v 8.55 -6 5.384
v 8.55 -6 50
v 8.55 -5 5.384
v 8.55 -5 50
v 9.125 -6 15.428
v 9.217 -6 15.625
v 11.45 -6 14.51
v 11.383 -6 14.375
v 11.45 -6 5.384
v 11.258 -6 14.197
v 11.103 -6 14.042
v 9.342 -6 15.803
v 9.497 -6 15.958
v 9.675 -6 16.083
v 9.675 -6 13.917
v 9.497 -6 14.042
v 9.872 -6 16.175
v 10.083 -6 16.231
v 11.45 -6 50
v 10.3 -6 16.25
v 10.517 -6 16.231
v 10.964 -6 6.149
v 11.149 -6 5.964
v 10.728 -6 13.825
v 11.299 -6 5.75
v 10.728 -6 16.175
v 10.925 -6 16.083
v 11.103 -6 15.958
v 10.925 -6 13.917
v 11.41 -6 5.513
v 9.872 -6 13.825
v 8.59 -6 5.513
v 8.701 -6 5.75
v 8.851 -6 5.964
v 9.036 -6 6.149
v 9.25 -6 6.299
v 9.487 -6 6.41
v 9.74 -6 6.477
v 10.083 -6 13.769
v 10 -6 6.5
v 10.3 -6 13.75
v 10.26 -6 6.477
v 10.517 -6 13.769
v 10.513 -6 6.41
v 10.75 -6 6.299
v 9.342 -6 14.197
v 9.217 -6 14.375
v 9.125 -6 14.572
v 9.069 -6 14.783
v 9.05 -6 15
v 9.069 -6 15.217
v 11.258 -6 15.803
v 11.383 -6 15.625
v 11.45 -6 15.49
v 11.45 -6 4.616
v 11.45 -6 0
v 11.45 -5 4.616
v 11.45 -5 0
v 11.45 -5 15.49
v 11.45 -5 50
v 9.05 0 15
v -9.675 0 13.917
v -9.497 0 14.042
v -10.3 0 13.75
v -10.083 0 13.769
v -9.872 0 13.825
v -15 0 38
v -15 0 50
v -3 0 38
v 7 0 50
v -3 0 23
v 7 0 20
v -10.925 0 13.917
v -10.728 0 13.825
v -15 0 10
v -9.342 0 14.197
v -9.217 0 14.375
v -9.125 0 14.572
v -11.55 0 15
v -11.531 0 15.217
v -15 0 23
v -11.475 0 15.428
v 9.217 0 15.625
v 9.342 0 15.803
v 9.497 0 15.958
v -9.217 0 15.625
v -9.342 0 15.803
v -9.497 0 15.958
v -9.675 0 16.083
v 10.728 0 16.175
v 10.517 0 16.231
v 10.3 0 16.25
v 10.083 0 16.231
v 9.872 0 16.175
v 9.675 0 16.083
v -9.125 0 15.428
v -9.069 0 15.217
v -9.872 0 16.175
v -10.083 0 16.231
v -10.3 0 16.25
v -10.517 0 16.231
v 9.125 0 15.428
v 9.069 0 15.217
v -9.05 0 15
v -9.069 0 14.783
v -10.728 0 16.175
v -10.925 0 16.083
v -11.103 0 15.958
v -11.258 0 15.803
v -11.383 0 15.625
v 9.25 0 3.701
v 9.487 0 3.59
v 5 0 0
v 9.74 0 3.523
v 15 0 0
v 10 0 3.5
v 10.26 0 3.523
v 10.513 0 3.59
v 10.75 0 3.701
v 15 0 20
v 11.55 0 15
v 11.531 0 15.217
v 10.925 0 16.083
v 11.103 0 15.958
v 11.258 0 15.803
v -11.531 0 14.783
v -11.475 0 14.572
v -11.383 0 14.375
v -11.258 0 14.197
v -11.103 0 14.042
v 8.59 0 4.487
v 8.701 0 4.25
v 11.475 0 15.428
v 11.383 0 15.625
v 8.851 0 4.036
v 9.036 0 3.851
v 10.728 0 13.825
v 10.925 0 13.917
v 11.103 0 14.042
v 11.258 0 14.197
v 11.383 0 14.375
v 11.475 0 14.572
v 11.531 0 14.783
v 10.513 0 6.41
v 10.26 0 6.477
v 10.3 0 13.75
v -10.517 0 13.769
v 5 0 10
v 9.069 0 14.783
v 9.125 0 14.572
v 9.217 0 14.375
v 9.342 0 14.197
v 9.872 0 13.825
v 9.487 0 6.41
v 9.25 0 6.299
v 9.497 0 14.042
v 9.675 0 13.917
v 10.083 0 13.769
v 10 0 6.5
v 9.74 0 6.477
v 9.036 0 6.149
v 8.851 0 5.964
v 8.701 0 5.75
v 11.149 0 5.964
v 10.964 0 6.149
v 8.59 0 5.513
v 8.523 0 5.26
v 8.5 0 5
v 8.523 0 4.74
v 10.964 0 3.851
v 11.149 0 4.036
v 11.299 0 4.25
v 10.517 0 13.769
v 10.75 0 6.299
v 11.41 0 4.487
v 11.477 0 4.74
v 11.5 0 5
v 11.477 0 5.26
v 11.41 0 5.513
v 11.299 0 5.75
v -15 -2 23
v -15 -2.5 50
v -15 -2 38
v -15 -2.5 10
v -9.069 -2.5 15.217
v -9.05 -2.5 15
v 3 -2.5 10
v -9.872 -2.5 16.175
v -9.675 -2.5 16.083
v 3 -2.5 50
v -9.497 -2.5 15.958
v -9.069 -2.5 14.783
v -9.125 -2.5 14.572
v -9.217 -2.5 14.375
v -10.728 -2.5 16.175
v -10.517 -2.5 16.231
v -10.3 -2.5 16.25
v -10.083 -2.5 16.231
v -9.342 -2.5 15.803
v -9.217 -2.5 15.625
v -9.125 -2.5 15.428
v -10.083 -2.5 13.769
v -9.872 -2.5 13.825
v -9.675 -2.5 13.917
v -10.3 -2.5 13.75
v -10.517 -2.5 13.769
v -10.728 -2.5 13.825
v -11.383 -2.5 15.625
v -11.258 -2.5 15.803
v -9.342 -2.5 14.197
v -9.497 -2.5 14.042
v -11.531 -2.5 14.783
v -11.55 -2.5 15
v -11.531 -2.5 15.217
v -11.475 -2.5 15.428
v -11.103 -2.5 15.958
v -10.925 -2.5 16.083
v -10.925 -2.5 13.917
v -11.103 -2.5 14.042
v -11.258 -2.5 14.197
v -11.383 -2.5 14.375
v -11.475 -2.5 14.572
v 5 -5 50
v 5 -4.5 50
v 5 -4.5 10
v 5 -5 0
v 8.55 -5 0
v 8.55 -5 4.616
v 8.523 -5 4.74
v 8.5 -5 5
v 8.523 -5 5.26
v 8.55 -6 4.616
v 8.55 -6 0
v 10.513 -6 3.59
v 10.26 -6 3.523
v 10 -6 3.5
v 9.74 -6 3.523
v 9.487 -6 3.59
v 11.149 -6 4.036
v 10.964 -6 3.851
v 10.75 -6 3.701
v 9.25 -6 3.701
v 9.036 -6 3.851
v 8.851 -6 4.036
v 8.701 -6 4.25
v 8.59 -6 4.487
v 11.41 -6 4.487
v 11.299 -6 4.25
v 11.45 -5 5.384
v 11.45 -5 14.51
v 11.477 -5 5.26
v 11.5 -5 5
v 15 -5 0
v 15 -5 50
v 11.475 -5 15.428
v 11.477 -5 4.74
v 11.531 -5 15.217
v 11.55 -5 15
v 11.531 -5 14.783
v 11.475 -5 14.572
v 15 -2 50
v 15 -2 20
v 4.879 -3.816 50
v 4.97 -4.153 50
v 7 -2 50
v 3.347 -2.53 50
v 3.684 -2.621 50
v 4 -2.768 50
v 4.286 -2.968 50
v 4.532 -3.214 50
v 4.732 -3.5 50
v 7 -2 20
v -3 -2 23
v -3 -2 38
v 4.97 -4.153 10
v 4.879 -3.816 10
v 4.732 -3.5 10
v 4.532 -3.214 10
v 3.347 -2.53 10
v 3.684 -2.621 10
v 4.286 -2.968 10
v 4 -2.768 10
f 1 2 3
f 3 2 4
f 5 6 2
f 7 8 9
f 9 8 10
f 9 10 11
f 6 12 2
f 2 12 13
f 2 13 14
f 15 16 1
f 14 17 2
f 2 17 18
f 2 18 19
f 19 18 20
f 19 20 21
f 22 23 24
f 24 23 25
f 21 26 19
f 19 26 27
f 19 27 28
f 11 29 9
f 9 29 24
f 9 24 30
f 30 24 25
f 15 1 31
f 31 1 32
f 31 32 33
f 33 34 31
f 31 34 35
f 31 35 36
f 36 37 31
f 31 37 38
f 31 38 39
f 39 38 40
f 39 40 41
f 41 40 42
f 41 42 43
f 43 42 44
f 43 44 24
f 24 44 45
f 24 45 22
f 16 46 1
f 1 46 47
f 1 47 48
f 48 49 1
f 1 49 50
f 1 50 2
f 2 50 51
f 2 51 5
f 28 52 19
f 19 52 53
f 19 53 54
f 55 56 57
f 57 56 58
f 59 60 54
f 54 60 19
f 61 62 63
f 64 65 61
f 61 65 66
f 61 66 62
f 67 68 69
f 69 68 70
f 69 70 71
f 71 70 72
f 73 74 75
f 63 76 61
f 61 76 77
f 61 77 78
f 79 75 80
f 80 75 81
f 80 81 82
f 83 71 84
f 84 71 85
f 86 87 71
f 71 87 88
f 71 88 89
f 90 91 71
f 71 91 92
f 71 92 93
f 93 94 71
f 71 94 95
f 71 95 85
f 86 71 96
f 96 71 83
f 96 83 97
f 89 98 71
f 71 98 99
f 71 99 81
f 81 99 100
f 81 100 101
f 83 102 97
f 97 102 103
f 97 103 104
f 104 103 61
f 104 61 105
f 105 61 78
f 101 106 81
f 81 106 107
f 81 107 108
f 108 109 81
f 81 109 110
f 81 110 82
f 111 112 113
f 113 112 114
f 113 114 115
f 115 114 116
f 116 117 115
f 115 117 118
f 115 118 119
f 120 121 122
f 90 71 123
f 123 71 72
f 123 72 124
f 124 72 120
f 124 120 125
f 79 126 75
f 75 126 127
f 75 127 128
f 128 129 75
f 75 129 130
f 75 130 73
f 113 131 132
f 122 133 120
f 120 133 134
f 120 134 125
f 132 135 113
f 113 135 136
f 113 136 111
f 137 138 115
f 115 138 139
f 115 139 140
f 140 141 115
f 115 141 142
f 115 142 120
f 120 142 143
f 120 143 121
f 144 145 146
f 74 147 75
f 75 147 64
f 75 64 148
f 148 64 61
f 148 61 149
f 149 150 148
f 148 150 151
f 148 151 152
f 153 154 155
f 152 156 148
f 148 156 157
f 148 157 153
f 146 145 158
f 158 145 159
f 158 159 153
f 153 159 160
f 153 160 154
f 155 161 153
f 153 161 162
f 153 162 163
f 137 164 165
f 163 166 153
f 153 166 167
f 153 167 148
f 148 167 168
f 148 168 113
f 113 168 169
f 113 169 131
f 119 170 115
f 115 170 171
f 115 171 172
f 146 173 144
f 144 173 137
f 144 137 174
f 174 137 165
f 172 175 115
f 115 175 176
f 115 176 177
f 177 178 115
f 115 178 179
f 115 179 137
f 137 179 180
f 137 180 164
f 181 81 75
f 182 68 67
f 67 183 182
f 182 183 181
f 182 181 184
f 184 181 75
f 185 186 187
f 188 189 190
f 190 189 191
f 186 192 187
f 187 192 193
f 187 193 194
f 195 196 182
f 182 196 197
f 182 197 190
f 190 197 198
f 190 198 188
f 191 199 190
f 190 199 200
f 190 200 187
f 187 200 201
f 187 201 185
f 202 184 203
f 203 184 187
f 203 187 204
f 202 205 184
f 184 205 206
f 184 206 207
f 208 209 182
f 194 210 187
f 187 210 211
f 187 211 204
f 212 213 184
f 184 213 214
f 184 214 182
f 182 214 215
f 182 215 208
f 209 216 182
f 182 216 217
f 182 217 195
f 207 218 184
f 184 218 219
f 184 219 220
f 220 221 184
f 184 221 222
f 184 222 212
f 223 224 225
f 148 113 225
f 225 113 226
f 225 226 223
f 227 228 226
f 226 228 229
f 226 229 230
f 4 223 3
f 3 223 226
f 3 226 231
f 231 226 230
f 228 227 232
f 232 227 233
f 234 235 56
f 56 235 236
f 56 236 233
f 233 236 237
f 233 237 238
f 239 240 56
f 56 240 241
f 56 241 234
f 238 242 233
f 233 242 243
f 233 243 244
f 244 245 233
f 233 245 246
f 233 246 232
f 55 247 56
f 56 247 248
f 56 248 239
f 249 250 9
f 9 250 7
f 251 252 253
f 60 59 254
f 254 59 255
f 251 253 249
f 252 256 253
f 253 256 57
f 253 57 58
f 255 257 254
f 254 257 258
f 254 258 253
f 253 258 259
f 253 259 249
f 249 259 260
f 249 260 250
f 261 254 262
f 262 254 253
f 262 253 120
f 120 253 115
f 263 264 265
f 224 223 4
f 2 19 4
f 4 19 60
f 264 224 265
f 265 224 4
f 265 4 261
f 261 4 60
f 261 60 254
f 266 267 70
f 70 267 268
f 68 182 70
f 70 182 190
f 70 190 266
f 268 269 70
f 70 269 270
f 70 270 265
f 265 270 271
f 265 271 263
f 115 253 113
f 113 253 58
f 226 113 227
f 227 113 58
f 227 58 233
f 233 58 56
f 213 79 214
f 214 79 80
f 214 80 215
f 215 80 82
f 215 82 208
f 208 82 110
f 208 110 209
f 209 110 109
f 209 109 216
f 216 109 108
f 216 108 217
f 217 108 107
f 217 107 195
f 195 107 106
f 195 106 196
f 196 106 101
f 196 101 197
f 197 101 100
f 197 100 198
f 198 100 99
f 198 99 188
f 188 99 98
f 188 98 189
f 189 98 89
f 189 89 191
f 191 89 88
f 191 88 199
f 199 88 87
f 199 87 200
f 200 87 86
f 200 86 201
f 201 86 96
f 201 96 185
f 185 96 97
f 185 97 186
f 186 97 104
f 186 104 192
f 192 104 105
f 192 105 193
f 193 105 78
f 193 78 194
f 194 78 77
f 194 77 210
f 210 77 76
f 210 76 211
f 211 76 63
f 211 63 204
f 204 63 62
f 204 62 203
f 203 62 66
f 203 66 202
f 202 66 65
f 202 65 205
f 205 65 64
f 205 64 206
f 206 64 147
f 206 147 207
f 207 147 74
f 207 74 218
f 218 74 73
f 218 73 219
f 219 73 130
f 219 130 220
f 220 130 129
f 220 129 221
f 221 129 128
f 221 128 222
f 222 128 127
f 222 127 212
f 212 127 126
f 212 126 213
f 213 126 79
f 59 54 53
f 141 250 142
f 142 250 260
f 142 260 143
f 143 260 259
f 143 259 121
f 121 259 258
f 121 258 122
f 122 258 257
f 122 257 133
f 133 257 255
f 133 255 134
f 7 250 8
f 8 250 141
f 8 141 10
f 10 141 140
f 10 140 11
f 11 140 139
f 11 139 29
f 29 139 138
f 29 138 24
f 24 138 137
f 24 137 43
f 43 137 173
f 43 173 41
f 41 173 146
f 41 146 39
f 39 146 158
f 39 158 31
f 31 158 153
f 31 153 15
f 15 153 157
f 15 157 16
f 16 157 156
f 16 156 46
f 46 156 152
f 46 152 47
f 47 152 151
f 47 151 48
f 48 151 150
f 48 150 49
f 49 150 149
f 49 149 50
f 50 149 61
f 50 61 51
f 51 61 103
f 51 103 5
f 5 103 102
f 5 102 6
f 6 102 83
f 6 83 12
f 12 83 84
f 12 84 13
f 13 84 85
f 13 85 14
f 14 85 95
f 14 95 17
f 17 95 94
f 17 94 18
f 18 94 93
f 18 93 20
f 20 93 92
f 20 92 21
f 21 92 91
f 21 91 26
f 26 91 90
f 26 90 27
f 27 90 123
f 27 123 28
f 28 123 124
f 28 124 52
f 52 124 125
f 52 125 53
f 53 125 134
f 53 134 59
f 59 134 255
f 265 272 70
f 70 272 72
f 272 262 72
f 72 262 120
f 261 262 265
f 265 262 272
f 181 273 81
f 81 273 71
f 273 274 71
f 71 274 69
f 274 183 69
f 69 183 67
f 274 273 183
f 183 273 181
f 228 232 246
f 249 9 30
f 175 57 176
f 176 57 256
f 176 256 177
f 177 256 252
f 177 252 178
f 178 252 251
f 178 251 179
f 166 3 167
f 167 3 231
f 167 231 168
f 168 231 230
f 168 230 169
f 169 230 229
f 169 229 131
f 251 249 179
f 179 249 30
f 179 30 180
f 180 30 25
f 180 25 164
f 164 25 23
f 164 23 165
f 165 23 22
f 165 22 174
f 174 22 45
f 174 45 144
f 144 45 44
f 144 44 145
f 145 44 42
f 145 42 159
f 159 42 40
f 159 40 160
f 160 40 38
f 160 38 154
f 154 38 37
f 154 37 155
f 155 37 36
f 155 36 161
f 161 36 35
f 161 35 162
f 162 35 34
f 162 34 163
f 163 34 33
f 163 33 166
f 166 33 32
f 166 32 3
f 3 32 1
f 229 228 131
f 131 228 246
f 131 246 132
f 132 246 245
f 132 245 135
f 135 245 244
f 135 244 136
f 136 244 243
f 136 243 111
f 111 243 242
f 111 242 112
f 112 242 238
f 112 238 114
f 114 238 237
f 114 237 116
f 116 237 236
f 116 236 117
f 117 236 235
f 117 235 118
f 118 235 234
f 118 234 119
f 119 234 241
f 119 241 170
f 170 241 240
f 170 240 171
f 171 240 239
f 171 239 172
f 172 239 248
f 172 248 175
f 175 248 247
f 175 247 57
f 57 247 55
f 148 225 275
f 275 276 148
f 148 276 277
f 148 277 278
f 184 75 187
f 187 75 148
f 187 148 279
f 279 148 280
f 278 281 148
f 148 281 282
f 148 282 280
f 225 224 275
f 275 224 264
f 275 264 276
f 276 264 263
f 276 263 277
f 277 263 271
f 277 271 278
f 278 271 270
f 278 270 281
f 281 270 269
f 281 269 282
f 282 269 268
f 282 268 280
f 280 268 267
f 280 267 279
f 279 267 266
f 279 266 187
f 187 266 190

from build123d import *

# Parameters (mm, degrees)
BOSS_EXTRUDE1_DEPTH = 50
SKETCH2_R           = 1.25
CUT_EXTRUDE1_DEPTH  = 7
SKETCH3_W           = 8
SKETCH3_H           = 30
SKETCH3_W_2         = 12
SKETCH3_H_2         = 15
CUT_EXTRUDE2_DEPTH  = 2
SKETCH4_R           = 1.5
SKETCH4_W           = 20
SKETCH4_H           = 10
CUT_EXTRUDE3_DEPTH  = 7
FILLET1_R           = 2


with BuildPart() as part:
    # Sketch1 → Boss-Extrude1 (new body)
    with BuildSketch(Plane.XY):
        Polygon((15, 0), (15, -5), (11.45, -5), (11.45, -6), (8.55, -6), (8.55, -5), (5, -5), (5, -2.5), (-15, -2.5), (-15, 0), align=None)
    extrude(amount=BOSS_EXTRUDE1_DEPTH)

    # Sketch2 → Cut-Extrude1 (cut, through all)
    with BuildSketch(Plane(origin=(0, 0, 0), x_dir=(1, 0, 0), z_dir=(0, 1, 0))):
        with Locations((-10.3, -15)):
            Circle(SKETCH2_R)
        with Locations((10.3, -15)):
            Circle(SKETCH2_R)
    extrude(amount=-CUT_EXTRUDE1_DEPTH, mode=Mode.SUBTRACT)

    # Sketch3 → Cut-Extrude2 (cut)
    with BuildSketch(Plane(origin=(0, 0, 0), x_dir=(1, 0, 0), z_dir=(0, 1, 0))):
        with Locations((11, -35)):
            Rectangle(SKETCH3_W, SKETCH3_H)
        with Locations((-9, -30.5)):
            Rectangle(SKETCH3_W_2, SKETCH3_H_2)
    extrude(amount=-CUT_EXTRUDE2_DEPTH, mode=Mode.SUBTRACT)

    # Sketch4 → Cut-Extrude3 (cut, through all)
    with BuildSketch(Plane(origin=(0, -6, 0), x_dir=(-1, 0, 0), z_dir=(0, -1, 0))):
        with Locations((-10, -5)):
            Circle(SKETCH4_R)
        with Locations((5, -5)):
            Rectangle(SKETCH4_W, SKETCH4_H)
    extrude(amount=-CUT_EXTRUDE3_DEPTH, mode=Mode.SUBTRACT)

    # Fillet1
    fillet1_edges = [part.edges().sort_by_distance(p)[0] for p in [
        (5, -2.5, 30),
    ]]
    fillet(fillet1_edges, radius=FILLET1_R)


solid = part.part
